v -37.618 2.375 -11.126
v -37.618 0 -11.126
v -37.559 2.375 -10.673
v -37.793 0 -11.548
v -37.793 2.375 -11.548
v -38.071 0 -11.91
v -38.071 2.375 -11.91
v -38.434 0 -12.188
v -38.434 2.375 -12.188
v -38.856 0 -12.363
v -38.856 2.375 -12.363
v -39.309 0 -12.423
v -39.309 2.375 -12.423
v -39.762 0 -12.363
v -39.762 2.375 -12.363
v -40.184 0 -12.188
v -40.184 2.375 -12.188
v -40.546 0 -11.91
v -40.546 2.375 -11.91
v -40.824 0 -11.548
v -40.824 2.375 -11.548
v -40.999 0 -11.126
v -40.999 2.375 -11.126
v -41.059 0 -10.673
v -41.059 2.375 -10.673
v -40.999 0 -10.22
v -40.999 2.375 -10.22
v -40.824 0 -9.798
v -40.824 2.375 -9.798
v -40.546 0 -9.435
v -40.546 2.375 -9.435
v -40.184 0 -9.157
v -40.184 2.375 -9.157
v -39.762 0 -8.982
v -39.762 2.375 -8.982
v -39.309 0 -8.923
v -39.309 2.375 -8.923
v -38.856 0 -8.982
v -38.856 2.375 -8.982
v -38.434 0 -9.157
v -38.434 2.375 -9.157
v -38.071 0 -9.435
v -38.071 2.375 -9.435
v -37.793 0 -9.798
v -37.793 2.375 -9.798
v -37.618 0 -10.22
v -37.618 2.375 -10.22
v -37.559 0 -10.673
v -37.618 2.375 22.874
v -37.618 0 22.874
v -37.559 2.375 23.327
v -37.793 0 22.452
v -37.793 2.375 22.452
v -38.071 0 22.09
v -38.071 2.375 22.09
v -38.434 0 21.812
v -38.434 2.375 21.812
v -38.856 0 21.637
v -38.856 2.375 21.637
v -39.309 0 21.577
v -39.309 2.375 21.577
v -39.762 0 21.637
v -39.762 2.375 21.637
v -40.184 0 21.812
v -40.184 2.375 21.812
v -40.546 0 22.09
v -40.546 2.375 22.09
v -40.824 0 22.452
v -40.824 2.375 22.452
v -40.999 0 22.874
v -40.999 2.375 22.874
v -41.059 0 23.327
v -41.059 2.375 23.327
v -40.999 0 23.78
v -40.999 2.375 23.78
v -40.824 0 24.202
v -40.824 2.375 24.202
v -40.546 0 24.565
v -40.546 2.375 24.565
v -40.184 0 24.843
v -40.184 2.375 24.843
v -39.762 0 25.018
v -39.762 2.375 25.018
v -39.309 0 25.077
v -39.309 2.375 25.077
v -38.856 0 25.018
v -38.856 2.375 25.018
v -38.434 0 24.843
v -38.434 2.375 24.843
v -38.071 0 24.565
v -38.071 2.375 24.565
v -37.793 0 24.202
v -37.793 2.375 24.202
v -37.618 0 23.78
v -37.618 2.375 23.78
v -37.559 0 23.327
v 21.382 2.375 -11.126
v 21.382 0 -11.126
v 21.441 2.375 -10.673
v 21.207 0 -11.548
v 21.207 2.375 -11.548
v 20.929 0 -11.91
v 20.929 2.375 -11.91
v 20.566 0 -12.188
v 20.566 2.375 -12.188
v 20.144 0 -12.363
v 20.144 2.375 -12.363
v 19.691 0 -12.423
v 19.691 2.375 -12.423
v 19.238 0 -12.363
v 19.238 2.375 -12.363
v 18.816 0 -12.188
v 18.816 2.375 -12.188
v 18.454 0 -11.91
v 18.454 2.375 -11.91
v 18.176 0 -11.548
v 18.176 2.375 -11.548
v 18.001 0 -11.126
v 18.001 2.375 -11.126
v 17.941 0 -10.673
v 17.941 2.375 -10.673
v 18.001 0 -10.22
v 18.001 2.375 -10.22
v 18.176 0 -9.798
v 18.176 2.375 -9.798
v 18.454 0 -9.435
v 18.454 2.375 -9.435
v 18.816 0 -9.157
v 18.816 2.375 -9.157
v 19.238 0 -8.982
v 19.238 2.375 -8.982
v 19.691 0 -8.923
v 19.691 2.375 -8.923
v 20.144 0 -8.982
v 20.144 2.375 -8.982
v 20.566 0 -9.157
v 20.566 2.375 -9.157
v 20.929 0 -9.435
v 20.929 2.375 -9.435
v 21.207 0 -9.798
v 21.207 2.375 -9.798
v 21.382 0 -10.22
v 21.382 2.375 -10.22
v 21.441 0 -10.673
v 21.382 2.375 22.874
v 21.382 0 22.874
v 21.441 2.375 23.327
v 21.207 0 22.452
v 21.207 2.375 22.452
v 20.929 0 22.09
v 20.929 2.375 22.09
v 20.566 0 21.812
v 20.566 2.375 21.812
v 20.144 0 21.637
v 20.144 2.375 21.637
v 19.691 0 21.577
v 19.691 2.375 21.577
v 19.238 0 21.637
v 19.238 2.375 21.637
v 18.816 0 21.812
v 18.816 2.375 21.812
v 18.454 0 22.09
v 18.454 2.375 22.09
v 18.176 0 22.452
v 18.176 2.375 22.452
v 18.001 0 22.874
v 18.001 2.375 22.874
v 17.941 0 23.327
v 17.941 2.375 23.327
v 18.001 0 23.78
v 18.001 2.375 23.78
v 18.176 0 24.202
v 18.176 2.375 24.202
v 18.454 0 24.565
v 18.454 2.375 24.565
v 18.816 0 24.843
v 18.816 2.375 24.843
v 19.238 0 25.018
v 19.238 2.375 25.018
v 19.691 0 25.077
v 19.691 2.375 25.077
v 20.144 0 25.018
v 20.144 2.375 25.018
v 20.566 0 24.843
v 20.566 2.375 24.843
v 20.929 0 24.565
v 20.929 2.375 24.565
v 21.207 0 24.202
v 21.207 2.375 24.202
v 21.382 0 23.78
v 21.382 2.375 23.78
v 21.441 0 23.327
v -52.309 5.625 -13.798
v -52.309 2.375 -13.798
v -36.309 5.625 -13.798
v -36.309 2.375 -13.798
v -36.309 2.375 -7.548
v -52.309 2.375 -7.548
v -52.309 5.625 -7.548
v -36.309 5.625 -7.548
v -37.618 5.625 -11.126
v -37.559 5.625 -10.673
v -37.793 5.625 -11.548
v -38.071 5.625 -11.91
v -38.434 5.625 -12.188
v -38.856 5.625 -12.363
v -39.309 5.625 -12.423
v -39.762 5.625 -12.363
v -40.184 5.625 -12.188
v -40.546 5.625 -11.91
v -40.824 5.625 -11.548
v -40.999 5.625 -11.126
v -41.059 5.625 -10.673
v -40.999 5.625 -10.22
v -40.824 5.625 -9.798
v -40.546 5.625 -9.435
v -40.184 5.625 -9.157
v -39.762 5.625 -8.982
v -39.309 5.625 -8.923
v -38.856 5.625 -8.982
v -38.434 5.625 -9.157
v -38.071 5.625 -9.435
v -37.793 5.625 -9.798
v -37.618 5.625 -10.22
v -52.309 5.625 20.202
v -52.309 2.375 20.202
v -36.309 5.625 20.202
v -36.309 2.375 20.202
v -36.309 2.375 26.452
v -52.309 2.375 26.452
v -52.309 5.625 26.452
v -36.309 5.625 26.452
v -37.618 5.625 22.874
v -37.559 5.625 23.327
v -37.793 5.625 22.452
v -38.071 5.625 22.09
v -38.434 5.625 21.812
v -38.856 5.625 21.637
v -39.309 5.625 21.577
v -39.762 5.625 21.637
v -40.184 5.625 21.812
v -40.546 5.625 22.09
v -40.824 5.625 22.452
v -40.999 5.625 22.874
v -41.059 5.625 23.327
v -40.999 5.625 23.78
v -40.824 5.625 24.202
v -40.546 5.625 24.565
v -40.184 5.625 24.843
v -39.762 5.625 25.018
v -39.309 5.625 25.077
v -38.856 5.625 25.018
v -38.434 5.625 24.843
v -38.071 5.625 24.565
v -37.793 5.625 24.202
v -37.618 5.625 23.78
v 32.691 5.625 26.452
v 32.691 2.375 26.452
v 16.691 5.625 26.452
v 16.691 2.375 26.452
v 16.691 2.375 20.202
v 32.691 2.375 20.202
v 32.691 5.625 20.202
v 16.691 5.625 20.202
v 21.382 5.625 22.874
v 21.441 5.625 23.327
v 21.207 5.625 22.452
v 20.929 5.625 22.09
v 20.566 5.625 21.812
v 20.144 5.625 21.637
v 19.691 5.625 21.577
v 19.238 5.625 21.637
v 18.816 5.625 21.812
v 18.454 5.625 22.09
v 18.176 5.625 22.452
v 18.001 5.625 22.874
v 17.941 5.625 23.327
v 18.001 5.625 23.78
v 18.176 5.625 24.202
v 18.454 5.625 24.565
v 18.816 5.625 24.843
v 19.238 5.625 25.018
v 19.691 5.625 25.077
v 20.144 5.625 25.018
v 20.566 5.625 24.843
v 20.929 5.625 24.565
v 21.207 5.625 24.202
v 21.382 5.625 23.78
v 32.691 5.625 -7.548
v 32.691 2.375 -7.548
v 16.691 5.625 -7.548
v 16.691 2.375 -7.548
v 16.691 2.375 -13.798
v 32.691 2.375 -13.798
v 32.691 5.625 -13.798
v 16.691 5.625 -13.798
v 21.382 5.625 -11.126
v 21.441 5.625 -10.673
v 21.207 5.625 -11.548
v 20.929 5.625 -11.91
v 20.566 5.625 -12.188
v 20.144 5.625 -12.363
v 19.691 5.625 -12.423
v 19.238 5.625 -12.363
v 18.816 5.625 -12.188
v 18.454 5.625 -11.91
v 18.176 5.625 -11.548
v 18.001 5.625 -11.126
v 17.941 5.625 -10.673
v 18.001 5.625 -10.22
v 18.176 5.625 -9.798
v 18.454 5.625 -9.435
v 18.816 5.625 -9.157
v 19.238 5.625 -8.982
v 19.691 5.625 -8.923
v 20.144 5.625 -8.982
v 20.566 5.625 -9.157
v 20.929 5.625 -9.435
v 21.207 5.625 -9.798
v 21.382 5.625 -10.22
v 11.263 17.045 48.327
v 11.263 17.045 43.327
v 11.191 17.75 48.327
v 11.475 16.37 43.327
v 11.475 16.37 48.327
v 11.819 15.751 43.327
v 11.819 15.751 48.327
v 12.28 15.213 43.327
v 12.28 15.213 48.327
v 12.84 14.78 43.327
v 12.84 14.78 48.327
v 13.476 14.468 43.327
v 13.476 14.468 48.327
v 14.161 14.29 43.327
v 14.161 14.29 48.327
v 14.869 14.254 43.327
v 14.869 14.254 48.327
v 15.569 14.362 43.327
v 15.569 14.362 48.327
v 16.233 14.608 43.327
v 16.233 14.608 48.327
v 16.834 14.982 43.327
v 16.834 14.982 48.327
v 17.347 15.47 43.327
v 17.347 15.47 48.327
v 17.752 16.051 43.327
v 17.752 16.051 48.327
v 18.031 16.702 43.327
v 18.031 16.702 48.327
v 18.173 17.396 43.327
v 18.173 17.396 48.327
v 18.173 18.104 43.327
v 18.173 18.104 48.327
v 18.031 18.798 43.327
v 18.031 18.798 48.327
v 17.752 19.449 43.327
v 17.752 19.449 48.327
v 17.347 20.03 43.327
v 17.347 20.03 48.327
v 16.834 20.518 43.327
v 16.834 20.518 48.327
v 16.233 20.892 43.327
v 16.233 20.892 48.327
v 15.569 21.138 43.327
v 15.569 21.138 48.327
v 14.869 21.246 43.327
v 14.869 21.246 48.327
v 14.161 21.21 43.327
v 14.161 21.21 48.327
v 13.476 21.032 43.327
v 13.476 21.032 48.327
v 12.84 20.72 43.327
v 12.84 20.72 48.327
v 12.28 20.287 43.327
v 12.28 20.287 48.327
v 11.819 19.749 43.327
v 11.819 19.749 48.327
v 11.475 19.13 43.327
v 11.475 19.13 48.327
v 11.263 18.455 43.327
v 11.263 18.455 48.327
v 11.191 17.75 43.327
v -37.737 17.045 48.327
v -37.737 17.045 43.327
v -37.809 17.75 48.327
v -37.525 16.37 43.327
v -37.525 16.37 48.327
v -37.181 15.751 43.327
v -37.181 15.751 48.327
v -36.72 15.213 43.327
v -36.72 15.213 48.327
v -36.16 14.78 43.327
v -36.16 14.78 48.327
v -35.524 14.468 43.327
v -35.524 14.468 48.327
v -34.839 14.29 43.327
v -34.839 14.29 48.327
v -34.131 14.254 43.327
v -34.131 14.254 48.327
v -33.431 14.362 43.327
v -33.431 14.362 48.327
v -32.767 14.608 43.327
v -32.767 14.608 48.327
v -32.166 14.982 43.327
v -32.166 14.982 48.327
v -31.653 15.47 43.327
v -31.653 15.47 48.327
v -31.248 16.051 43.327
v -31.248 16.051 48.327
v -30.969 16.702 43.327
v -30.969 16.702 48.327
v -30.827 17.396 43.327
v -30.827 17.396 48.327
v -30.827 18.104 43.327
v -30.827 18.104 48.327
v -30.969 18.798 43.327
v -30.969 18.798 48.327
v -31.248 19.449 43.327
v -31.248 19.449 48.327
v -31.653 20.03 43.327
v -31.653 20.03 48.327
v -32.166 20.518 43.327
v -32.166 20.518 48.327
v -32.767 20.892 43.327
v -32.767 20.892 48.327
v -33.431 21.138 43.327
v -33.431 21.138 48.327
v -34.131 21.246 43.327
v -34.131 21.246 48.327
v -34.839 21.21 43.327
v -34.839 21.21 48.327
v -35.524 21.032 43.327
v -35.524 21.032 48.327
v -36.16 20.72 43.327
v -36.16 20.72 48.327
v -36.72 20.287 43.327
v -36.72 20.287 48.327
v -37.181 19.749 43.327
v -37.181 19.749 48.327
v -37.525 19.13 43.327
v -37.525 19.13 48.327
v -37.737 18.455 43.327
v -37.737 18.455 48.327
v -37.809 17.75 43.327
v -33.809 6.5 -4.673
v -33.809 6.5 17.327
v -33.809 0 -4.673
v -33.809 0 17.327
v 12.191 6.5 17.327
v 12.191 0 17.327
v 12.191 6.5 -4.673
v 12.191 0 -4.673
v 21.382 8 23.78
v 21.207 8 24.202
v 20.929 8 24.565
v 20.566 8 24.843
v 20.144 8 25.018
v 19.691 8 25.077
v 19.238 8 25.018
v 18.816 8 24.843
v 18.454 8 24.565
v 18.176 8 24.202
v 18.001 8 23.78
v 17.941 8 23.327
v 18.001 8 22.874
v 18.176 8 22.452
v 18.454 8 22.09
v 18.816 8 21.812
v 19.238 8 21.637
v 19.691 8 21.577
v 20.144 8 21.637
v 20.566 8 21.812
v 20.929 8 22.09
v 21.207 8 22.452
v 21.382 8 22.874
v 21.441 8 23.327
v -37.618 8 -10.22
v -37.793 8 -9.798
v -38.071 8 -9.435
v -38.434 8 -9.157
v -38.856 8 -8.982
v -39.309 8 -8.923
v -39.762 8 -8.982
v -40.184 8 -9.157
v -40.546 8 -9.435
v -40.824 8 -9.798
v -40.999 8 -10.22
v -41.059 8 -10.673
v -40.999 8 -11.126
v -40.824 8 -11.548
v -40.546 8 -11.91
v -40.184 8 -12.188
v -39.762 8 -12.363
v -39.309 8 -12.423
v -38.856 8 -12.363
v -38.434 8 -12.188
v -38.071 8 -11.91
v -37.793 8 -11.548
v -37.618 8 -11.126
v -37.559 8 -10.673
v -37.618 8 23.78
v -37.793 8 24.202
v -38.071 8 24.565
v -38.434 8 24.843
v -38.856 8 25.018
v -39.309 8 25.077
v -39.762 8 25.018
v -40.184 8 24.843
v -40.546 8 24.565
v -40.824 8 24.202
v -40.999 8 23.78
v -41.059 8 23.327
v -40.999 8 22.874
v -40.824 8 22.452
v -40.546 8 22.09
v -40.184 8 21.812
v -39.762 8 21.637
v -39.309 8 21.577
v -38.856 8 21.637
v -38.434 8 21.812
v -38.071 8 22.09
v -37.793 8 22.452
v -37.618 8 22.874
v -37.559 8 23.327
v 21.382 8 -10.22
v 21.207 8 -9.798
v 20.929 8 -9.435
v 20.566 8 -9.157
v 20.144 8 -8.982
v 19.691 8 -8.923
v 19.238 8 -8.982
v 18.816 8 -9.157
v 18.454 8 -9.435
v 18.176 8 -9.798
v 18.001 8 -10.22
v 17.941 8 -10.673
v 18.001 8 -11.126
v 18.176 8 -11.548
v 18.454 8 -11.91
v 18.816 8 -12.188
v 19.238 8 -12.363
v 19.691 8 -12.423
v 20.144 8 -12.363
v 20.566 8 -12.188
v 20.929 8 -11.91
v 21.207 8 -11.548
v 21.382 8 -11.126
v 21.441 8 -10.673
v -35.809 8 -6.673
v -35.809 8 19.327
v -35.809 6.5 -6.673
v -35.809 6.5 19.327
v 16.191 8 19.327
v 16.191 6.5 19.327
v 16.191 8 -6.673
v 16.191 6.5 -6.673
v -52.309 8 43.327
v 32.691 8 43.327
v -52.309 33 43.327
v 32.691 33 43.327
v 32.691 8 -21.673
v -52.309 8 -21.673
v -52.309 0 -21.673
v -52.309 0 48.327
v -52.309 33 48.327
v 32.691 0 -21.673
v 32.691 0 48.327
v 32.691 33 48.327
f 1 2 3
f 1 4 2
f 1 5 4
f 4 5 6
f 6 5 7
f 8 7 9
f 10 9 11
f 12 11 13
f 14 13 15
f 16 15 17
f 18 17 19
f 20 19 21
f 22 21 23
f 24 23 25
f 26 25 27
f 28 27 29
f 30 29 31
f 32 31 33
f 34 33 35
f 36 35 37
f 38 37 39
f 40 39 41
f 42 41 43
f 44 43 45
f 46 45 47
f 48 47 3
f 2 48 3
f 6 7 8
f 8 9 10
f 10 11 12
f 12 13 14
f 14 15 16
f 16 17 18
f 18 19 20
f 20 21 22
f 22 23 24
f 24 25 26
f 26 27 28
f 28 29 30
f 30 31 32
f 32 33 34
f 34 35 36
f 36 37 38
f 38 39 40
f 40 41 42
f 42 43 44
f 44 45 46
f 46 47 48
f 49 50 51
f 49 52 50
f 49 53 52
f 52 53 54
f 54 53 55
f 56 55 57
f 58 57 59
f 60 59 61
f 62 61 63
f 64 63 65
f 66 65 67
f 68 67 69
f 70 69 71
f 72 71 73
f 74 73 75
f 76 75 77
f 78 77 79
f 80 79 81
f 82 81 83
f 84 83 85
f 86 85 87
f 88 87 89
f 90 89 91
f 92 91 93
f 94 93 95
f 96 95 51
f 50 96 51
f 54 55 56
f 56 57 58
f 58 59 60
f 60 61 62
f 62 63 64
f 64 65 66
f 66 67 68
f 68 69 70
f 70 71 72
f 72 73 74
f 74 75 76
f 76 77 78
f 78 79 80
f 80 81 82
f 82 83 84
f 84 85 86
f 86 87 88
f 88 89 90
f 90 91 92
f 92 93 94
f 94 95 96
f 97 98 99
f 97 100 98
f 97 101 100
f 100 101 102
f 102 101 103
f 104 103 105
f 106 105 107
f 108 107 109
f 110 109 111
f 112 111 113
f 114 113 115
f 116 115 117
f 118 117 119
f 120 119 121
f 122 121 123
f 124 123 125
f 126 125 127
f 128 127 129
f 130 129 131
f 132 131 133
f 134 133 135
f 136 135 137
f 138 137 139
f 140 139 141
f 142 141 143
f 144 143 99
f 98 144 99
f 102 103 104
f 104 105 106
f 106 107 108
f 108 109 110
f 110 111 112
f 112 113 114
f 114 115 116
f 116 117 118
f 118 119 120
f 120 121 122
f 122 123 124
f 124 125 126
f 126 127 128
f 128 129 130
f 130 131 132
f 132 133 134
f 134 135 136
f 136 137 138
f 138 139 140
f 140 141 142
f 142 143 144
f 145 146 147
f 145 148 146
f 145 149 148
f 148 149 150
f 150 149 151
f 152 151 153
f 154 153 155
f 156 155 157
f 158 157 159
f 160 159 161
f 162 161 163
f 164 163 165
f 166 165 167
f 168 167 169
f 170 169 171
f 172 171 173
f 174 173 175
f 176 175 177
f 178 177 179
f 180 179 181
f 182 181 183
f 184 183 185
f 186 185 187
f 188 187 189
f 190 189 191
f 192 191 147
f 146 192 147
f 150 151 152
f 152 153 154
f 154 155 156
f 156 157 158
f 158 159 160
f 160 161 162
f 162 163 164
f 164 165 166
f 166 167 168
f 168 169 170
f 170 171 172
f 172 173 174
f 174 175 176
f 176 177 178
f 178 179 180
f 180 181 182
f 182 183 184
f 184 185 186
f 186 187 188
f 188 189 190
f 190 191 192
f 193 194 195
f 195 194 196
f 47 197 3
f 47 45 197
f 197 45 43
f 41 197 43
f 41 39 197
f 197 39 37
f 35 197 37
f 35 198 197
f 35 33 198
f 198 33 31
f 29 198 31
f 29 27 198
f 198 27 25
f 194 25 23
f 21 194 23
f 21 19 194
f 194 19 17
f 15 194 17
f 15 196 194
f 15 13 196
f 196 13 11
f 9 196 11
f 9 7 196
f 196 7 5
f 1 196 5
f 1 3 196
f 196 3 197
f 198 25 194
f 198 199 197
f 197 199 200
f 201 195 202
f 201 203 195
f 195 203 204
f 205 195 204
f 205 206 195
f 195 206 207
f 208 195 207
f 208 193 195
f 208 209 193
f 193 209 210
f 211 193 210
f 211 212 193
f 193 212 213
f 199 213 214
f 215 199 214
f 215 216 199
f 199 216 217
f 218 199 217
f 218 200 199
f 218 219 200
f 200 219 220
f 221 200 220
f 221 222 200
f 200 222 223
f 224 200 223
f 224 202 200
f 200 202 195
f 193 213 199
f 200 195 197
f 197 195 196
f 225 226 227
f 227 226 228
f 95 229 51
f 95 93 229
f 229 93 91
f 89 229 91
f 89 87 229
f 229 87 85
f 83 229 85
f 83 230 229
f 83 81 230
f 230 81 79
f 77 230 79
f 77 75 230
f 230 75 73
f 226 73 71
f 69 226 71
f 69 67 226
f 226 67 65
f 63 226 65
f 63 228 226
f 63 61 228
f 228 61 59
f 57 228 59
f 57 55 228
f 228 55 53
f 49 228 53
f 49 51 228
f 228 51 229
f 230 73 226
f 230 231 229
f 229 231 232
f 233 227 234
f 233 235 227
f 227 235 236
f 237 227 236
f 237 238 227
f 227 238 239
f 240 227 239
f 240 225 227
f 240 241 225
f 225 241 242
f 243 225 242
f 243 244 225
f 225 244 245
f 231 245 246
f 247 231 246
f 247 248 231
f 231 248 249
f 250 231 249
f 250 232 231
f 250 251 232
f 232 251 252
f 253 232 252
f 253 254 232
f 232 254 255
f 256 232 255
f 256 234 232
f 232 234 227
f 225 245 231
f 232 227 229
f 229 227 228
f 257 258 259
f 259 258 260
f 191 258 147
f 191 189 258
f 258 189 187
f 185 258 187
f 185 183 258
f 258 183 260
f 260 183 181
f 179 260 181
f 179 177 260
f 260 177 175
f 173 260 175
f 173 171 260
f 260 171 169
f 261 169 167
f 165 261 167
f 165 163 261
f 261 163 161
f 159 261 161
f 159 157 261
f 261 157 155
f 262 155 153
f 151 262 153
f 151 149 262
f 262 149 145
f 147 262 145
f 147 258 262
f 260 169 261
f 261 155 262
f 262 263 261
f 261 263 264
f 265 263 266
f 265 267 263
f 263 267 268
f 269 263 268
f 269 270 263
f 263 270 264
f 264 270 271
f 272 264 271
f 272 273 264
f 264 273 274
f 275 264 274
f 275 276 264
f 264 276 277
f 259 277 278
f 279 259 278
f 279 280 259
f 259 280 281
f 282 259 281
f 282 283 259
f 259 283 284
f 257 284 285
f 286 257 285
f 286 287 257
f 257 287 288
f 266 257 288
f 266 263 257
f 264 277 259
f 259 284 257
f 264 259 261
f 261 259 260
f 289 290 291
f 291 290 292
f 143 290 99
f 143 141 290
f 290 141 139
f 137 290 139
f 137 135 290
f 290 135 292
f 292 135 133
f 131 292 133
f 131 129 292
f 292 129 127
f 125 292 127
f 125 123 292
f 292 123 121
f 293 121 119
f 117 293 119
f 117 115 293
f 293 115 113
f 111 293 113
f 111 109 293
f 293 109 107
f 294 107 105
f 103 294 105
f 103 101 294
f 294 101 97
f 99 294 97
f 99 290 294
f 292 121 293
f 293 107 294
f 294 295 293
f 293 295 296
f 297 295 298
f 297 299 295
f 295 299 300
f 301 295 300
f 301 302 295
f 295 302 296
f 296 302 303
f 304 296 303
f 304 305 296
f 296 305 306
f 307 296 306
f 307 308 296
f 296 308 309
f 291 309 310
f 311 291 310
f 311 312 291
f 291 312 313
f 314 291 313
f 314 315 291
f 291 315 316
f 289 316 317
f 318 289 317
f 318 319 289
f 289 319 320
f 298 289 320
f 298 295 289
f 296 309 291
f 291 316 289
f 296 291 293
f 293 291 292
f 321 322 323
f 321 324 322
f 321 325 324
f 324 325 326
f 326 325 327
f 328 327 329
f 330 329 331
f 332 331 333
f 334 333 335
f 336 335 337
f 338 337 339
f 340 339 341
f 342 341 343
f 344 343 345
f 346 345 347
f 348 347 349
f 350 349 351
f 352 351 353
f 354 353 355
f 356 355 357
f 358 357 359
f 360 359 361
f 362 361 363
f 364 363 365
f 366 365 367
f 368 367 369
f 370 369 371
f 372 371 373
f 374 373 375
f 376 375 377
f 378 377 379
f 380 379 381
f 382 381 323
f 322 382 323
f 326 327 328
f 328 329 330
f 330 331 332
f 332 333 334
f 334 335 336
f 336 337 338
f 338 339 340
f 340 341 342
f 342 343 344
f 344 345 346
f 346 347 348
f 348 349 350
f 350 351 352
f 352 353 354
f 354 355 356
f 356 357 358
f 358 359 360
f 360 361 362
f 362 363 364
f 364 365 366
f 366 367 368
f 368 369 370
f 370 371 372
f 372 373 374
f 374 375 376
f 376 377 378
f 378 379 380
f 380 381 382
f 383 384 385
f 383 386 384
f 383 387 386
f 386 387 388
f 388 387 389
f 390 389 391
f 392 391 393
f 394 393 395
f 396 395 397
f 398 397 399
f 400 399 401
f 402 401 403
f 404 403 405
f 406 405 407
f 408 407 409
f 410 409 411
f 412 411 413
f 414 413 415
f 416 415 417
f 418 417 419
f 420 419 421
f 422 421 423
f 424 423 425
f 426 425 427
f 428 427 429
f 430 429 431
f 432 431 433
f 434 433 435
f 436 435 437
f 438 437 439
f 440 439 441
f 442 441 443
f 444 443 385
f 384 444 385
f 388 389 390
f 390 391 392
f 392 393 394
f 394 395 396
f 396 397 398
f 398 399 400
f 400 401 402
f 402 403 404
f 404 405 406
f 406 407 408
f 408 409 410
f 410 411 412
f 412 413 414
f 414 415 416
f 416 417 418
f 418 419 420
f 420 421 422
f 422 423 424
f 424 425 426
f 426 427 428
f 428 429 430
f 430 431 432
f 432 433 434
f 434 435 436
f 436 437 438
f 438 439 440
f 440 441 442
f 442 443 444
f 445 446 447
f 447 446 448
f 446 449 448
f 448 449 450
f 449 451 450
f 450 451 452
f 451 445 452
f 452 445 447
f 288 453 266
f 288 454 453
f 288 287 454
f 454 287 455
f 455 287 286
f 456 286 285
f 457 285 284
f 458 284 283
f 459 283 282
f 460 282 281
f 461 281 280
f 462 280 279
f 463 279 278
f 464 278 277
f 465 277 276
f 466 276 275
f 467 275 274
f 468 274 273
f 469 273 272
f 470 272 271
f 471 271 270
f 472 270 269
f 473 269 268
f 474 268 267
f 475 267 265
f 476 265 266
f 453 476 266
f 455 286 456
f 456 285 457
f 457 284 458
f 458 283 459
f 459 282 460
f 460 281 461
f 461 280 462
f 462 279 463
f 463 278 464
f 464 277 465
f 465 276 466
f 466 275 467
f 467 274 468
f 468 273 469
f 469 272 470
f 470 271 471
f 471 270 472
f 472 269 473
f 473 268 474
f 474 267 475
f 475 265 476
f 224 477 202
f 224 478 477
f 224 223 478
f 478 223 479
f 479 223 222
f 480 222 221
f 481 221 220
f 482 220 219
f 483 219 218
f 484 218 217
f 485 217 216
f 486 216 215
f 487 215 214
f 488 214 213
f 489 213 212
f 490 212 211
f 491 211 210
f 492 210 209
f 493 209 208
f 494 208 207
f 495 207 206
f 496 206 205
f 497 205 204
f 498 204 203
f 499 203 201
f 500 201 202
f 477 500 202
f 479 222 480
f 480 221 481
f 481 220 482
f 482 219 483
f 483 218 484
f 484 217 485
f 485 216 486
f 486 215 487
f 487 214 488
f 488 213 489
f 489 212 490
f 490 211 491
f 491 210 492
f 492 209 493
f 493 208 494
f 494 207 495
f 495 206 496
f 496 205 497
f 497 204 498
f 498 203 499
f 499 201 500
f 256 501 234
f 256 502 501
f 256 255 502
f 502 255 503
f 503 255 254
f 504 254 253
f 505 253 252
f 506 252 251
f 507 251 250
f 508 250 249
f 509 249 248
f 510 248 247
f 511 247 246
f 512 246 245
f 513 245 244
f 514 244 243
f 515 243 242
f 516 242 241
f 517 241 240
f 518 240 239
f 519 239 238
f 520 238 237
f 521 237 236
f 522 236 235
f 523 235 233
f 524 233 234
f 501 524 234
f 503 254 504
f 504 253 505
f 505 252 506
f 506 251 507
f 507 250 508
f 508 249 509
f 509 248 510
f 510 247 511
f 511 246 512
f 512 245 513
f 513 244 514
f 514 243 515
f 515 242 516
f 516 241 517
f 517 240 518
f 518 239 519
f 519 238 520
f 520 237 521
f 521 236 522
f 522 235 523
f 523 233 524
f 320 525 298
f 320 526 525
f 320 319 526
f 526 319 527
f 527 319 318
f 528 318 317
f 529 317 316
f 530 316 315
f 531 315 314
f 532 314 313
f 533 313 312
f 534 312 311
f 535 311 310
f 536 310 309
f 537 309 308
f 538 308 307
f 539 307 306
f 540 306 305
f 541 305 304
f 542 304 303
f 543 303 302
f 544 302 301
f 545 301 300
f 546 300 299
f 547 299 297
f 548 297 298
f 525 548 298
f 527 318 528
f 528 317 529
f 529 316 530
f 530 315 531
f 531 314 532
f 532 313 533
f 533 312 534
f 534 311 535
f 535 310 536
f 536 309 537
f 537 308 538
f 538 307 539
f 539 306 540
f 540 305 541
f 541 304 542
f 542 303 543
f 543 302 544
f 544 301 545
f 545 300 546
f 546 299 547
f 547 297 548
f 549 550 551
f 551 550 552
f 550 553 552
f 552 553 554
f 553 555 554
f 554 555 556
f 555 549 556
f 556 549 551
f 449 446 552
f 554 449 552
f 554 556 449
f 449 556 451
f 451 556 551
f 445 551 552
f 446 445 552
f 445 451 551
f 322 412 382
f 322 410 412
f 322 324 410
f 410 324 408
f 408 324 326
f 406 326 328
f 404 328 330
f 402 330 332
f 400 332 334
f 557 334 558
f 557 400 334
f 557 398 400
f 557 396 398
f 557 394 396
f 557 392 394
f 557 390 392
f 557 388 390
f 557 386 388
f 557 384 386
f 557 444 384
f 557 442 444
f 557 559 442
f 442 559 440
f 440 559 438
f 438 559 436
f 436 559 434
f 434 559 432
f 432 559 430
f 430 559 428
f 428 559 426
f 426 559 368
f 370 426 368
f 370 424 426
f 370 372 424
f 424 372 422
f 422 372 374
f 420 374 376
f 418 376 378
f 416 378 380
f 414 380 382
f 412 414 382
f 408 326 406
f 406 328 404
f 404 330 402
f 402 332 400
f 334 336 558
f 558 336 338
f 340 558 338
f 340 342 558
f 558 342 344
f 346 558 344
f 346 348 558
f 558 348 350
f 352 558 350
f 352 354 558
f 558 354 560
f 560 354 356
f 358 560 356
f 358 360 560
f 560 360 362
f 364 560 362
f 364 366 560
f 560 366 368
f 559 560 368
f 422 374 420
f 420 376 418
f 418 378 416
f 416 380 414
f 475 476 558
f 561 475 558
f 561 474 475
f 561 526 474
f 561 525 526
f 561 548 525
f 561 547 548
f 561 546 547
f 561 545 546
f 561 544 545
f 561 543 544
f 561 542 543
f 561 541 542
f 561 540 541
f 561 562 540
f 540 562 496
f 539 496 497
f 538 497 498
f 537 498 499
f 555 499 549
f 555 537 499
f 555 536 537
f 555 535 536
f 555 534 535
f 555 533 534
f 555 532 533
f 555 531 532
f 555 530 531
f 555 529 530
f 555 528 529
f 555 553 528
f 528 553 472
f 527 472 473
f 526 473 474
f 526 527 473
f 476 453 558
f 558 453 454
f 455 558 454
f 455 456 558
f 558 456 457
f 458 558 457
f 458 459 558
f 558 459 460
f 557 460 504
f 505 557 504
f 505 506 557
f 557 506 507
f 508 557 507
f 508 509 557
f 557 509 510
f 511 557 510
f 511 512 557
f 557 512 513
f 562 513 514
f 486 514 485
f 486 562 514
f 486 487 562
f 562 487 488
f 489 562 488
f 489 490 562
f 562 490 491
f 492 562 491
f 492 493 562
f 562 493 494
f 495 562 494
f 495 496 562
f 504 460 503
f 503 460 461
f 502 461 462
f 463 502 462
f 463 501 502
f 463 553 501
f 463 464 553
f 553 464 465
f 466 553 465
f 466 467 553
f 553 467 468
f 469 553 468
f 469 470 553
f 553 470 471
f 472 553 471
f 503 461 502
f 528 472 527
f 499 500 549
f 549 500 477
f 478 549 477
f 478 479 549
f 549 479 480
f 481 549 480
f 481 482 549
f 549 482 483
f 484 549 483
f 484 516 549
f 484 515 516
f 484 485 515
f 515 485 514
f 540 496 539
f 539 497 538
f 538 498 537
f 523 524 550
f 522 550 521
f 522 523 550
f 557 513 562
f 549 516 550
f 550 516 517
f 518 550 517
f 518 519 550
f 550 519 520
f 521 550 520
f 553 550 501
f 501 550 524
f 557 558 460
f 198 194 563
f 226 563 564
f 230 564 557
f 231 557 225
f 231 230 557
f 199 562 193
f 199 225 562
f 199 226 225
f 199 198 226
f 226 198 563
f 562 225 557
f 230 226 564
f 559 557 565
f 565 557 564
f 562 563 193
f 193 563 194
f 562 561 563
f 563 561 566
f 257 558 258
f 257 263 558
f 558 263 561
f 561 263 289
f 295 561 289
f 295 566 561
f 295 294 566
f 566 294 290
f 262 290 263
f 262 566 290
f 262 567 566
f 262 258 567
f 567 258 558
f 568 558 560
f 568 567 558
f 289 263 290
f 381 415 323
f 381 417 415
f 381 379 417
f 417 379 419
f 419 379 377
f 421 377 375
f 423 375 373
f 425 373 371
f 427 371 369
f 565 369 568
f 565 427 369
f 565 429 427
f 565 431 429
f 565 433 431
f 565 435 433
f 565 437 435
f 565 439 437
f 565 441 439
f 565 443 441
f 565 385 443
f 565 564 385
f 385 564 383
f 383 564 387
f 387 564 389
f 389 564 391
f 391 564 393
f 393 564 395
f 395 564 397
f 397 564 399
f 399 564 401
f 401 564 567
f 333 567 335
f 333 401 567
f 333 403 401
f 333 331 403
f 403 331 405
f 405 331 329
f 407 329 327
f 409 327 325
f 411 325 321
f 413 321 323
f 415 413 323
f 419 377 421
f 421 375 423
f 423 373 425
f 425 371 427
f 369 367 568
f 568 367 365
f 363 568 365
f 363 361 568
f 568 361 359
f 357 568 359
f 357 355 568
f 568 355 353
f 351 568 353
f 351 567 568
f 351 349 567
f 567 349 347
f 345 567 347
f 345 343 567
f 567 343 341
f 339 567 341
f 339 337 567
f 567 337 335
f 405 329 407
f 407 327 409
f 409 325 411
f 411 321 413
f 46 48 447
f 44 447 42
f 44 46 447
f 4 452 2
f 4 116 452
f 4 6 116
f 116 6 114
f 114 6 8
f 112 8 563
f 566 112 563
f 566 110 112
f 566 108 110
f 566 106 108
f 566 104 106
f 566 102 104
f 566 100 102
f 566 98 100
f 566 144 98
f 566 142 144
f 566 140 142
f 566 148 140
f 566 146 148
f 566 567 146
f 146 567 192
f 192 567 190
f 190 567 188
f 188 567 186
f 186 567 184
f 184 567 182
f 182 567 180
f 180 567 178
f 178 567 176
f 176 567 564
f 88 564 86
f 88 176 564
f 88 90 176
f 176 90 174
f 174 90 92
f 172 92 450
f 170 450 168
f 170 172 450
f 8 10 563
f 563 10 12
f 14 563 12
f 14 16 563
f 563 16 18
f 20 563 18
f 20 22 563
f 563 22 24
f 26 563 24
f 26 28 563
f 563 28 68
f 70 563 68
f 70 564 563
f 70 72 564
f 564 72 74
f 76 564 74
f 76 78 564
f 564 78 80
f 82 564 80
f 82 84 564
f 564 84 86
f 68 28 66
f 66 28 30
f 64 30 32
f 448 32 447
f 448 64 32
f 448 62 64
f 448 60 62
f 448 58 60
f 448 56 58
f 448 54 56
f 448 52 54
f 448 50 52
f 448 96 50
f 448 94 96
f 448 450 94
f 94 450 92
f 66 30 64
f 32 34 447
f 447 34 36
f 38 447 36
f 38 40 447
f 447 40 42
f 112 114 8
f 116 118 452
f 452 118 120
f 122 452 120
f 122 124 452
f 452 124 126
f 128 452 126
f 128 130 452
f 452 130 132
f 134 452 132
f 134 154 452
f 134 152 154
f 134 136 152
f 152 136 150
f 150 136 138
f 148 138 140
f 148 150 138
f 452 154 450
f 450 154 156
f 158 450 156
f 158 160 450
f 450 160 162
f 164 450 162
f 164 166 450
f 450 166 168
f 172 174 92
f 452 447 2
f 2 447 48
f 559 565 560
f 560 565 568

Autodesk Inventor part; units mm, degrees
ref_plane "YZ Plane" through (0, 0, 0) normal (1, 0, 0) x (0, 1, 0)
ref_plane "XZ Plane" through (0, 0, 0) normal (0, 1, 0) x (-1, 0, 0)
ref_plane "XY Plane" through (0, 0, 0) normal (0, 0, 1) x (1, 0, 0)
sketch "Sketch1" plane through (0, 0, 0) normal (0, 1, 0) x (-1, 0, 0)
  line L0 (52.3087, -21.6726) -> (-32.6913, -21.6726)
  line L1 (-32.6913, -21.6726) -> (-32.6913, 48.3274)
  line L2 (-32.6913, 48.3274) -> (52.3087, 48.3274)
  line L3 (52.3087, 48.3274) -> (52.3087, -21.6726)
  dimension "d4" = 70
  dimension "d5" = 85
extrude "Extrusion1" add sketch "Sketch1" along normal blind 33
sketch "Sketch2" plane through (0, 33, 0) normal (0, 1, 0) x (1, 0, 0)
  line L0 (32.6913, 21.6726) -> (-52.3087, 21.6726) projected
  line L1 (-52.3087, 21.6726) -> (-52.3087, -48.3274) projected
  line L2 (-52.3087, -48.3274) -> (32.6913, -48.3274) projected
  line L3 (32.6913, -48.3274) -> (32.6913, 21.6726) projected
  line L4 (-52.3087, 21.6726) -> (32.6913, 21.6726)
  line L5 (32.6913, 21.6726) -> (32.6913, -43.3274)
  line L6 (32.6913, -43.3274) -> (-52.3087, -43.3274)
  line L7 (-52.3087, -43.3274) -> (-52.3087, 21.6726)
  point P0 (0, 0)
  dimension "d8" = 0
  dimension "d9" = 0
  dimension "d10" = 5
extrude "Extrusion2" cut sketch "Sketch2" against normal blind 25 contours L3 L6 L1 L0
sketch "Sketch3" plane through (0, 8, 0) normal (0, 1, 0) x (1, 0, 0)
  line L0 (32.6913, -43.3274) -> (-52.3087, -43.3274) projected
  line L1 (-35.8087, 6.6726) -> (16.1913, 6.6726)
  line L2 (16.1913, 6.6726) -> (16.1913, -19.3274)
  line L3 (16.1913, -19.3274) -> (-35.8087, -19.3274)
  line L4 (-35.8087, -19.3274) -> (-35.8087, 6.6726)
  line L5 (-52.3087, 21.6726) -> (32.6913, 21.6726)
  line L6 (-52.3087, -48.3274) -> (-52.3087, 21.6726) projected
  line L7 (-9.8087, -43.3274) -> (-9.8087, 21.6726) construction
  circle A0 centre (-39.3087, -23.3274) radius 1.75
  circle A1 centre (-39.3087, 10.6726) radius 1.75
  circle A2 centre (19.6913, 10.6726) radius 1.75
  circle A3 centre (19.6913, -23.3274) radius 1.75
  line L8 (-52.6639, -6.3274) -> (32.3361, -6.3274) construction
  point P0 (0, 0)
  dimension "d106" = 26
  dimension "d107" = 3.5
  dimension "d110" = 34
  dimension "d111" = 59
  dimension "d144" = 52
  dimension "d145" = 15
extrude "Extrusion3" cut sketch "Sketch3" against normal blind 1.5
sketch "Sketch4" plane through (0, 6.5, 0) normal (0, 1, 0) x (1, 0, 0)
  line L0 (-35.8087, 6.6726) -> (16.1913, 6.6726) projected
  line L1 (-35.8087, -19.3274) -> (-35.8087, 6.6726) projected
  line L2 (16.1913, -19.3274) -> (-35.8087, -19.3274) projected
  line L3 (16.1913, 6.6726) -> (16.1913, -19.3274) projected
  line L4 (-33.8087, 4.6726) -> (12.1913, 4.6726)
  line L5 (12.1913, 4.6726) -> (12.1913, -17.3274)
  line L6 (12.1913, -17.3274) -> (-33.8087, -17.3274)
  line L7 (-33.8087, -17.3274) -> (-33.8087, 4.6726)
  point P0 (0, 0)
  dimension "d20" = 2
  dimension "d21" = 2
  dimension "d22" = 2
  dimension "d23" = 4
extrude "Extrusion4" cut sketch "Sketch4" against normal blind 1 contours L4 L5 L6 L7
sketch "Sketch10" plane through (32.6913, 8, 43.3274) normal (0, 0, -1) x (-1, 0, 0)
  line L0 (85, 25) -> (85, 0) projected
  line L1 (0, 25) -> (85, 25) projected
  circle A0 centre (18, 9.75) radius 3.5
  circle A1 centre (67, 9.75) radius 3.5
  point P0 (32.6913, -8)
  dimension "d53" = 15.25
  dimension "d55" = 15.25
  dimension "d58" = 7
  dimension "d59" = 7
  dimension "d70" = 49
  dimension "d71" = 18
extrude "Extrusion9" cut sketch "Sketch10" against normal blind 5
sketch "Sketch16" plane through (16.1913, 8, -6.6726) normal (-1, 0, 0) x (0, 0, 1)
  line L0 (0, 0) -> (26, 0) projected
  line L1 (0, 0) -> (0, -1.5) projected
  line L2 (0, -1.5) -> (26, -1.5) projected
  line L3 (26, 0) -> (26, -1.5) projected
  point P0 (6.6726, -8)
sketch "Sketch17" plane through (0, 5.5, 0) normal (0, 1, 0) x (1, 0, 0)
  line L0 (-33.8087, 4.6726) -> (12.1913, 4.6726) projected
  line L1 (-33.8087, -17.3274) -> (-33.8087, 4.6726) projected
  line L2 (12.1913, -17.3274) -> (-33.8087, -17.3274) projected
  line L3 (12.1913, 4.6726) -> (12.1913, -17.3274) projected
  line L4 (-33.8087, 4.6726) -> (12.1913, 4.6726)
  line L5 (12.1913, 4.6726) -> (12.1913, -17.3274)
  line L6 (12.1913, -17.3274) -> (-33.8087, -17.3274)
  line L7 (-33.8087, -17.3274) -> (-33.8087, 4.6726)
  point P0 (0, 0)
  dimension "d93" = 0
  dimension "d94" = 0
  dimension "d95" = 0
  dimension "d96" = 0
extrude "Extrusion14" cut sketch "Sketch17" along normal through all both and the other way through all
sketch "Sketch20" plane through (32.6913, 0, 48.3274) normal (1, 0, 0) x (0, 0, -1)
  line L0 (21.875, 5.625) -> (28.125, 5.625)
  line L1 (28.125, 5.625) -> (28.125, 2.375)
  line L2 (28.125, 2.375) -> (21.875, 2.375)
  line L3 (21.875, 2.375) -> (21.875, 5.625)
  line L4 (55.875, 5.625) -> (62.125, 5.625)
  line L5 (62.125, 5.625) -> (62.125, 2.375)
  line L6 (62.125, 2.375) -> (55.875, 2.375)
  line L7 (55.875, 2.375) -> (55.875, 5.625)
  line L8 (25, 6.5) -> (25, 2.375) construction
  line L9 (59, 6.5) -> (59, 2.375) construction
  line L10 (23.25, 6.5) -> (26.75, 6.5) construction
  line L11 (57.25, 6.5) -> (60.75, 6.5) construction
  line L12 (70, 0) -> (70, 8) construction
  line L13 (70, 4) -> (0, 4) construction
  line L14 (0, 0) -> (0, 33) construction
  point P0 (48.3274, 0)
  dimension "d113" = 3.25
  dimension "d125" = 6.25
extrude "Extrusion16" cut sketch "Sketch20" against normal blind 16
sketch "Sketch21" plane through (-52.3087, 0, -21.6726) normal (-1, 0, 0) x (0, 0, 1)
  line L0 (7.875, 5.625) -> (14.125, 5.625)
  line L1 (14.125, 5.625) -> (14.125, 2.375)
  line L2 (14.125, 2.375) -> (7.875, 2.375)
  line L3 (7.875, 2.375) -> (7.875, 5.625)
  line L4 (41.875, 5.625) -> (48.125, 5.625)
  line L5 (48.125, 5.625) -> (48.125, 2.375)
  line L6 (48.125, 2.375) -> (41.875, 2.375)
  line L7 (41.875, 2.375) -> (41.875, 5.625)
  line L8 (7.875, 2.375) -> (14.125, 2.375) projected
  line L9 (41.875, 2.375) -> (48.125, 2.375) projected
  line L10 (48.125, 5.625) -> (41.875, 5.625) projected
  line L11 (41.875, 5.625) -> (41.875, 2.375) projected
  line L12 (48.125, 2.375) -> (48.125, 5.625) projected
  line L13 (14.125, 2.375) -> (14.125, 5.625) projected
  line L14 (7.875, 5.625) -> (7.875, 2.375) projected
  line L15 (14.125, 5.625) -> (7.875, 5.625) projected
extrude "Extrusion17" cut sketch "Sketch21" against normal blind 16
sketch "Sketch22" plane through (0, 8, 0) normal (0, 1, 0) x (1, 0, 0)
  circle A0 centre (-39.3087, -23.3274) radius 1.75
  circle A1 centre (19.6913, 10.6726) radius 1.75 projected
  circle A2 centre (-39.3087, 10.6726) radius 1.75
  circle A3 centre (19.6913, -23.3274) radius 1.75
  circle A4 centre (19.6913, 10.6726) radius 1.75
  circle A5 centre (19.6913, -23.3274) radius 1.75 projected
  circle A6 centre (-39.3087, 10.6726) radius 1.75 projected
  circle A7 centre (-39.3087, -23.3274) radius 1.75 projected
  point P0 (0, 0)
extrude "Extrusion18" cut sketch "Sketch22" against normal through all
properties part number "SampleBase"
